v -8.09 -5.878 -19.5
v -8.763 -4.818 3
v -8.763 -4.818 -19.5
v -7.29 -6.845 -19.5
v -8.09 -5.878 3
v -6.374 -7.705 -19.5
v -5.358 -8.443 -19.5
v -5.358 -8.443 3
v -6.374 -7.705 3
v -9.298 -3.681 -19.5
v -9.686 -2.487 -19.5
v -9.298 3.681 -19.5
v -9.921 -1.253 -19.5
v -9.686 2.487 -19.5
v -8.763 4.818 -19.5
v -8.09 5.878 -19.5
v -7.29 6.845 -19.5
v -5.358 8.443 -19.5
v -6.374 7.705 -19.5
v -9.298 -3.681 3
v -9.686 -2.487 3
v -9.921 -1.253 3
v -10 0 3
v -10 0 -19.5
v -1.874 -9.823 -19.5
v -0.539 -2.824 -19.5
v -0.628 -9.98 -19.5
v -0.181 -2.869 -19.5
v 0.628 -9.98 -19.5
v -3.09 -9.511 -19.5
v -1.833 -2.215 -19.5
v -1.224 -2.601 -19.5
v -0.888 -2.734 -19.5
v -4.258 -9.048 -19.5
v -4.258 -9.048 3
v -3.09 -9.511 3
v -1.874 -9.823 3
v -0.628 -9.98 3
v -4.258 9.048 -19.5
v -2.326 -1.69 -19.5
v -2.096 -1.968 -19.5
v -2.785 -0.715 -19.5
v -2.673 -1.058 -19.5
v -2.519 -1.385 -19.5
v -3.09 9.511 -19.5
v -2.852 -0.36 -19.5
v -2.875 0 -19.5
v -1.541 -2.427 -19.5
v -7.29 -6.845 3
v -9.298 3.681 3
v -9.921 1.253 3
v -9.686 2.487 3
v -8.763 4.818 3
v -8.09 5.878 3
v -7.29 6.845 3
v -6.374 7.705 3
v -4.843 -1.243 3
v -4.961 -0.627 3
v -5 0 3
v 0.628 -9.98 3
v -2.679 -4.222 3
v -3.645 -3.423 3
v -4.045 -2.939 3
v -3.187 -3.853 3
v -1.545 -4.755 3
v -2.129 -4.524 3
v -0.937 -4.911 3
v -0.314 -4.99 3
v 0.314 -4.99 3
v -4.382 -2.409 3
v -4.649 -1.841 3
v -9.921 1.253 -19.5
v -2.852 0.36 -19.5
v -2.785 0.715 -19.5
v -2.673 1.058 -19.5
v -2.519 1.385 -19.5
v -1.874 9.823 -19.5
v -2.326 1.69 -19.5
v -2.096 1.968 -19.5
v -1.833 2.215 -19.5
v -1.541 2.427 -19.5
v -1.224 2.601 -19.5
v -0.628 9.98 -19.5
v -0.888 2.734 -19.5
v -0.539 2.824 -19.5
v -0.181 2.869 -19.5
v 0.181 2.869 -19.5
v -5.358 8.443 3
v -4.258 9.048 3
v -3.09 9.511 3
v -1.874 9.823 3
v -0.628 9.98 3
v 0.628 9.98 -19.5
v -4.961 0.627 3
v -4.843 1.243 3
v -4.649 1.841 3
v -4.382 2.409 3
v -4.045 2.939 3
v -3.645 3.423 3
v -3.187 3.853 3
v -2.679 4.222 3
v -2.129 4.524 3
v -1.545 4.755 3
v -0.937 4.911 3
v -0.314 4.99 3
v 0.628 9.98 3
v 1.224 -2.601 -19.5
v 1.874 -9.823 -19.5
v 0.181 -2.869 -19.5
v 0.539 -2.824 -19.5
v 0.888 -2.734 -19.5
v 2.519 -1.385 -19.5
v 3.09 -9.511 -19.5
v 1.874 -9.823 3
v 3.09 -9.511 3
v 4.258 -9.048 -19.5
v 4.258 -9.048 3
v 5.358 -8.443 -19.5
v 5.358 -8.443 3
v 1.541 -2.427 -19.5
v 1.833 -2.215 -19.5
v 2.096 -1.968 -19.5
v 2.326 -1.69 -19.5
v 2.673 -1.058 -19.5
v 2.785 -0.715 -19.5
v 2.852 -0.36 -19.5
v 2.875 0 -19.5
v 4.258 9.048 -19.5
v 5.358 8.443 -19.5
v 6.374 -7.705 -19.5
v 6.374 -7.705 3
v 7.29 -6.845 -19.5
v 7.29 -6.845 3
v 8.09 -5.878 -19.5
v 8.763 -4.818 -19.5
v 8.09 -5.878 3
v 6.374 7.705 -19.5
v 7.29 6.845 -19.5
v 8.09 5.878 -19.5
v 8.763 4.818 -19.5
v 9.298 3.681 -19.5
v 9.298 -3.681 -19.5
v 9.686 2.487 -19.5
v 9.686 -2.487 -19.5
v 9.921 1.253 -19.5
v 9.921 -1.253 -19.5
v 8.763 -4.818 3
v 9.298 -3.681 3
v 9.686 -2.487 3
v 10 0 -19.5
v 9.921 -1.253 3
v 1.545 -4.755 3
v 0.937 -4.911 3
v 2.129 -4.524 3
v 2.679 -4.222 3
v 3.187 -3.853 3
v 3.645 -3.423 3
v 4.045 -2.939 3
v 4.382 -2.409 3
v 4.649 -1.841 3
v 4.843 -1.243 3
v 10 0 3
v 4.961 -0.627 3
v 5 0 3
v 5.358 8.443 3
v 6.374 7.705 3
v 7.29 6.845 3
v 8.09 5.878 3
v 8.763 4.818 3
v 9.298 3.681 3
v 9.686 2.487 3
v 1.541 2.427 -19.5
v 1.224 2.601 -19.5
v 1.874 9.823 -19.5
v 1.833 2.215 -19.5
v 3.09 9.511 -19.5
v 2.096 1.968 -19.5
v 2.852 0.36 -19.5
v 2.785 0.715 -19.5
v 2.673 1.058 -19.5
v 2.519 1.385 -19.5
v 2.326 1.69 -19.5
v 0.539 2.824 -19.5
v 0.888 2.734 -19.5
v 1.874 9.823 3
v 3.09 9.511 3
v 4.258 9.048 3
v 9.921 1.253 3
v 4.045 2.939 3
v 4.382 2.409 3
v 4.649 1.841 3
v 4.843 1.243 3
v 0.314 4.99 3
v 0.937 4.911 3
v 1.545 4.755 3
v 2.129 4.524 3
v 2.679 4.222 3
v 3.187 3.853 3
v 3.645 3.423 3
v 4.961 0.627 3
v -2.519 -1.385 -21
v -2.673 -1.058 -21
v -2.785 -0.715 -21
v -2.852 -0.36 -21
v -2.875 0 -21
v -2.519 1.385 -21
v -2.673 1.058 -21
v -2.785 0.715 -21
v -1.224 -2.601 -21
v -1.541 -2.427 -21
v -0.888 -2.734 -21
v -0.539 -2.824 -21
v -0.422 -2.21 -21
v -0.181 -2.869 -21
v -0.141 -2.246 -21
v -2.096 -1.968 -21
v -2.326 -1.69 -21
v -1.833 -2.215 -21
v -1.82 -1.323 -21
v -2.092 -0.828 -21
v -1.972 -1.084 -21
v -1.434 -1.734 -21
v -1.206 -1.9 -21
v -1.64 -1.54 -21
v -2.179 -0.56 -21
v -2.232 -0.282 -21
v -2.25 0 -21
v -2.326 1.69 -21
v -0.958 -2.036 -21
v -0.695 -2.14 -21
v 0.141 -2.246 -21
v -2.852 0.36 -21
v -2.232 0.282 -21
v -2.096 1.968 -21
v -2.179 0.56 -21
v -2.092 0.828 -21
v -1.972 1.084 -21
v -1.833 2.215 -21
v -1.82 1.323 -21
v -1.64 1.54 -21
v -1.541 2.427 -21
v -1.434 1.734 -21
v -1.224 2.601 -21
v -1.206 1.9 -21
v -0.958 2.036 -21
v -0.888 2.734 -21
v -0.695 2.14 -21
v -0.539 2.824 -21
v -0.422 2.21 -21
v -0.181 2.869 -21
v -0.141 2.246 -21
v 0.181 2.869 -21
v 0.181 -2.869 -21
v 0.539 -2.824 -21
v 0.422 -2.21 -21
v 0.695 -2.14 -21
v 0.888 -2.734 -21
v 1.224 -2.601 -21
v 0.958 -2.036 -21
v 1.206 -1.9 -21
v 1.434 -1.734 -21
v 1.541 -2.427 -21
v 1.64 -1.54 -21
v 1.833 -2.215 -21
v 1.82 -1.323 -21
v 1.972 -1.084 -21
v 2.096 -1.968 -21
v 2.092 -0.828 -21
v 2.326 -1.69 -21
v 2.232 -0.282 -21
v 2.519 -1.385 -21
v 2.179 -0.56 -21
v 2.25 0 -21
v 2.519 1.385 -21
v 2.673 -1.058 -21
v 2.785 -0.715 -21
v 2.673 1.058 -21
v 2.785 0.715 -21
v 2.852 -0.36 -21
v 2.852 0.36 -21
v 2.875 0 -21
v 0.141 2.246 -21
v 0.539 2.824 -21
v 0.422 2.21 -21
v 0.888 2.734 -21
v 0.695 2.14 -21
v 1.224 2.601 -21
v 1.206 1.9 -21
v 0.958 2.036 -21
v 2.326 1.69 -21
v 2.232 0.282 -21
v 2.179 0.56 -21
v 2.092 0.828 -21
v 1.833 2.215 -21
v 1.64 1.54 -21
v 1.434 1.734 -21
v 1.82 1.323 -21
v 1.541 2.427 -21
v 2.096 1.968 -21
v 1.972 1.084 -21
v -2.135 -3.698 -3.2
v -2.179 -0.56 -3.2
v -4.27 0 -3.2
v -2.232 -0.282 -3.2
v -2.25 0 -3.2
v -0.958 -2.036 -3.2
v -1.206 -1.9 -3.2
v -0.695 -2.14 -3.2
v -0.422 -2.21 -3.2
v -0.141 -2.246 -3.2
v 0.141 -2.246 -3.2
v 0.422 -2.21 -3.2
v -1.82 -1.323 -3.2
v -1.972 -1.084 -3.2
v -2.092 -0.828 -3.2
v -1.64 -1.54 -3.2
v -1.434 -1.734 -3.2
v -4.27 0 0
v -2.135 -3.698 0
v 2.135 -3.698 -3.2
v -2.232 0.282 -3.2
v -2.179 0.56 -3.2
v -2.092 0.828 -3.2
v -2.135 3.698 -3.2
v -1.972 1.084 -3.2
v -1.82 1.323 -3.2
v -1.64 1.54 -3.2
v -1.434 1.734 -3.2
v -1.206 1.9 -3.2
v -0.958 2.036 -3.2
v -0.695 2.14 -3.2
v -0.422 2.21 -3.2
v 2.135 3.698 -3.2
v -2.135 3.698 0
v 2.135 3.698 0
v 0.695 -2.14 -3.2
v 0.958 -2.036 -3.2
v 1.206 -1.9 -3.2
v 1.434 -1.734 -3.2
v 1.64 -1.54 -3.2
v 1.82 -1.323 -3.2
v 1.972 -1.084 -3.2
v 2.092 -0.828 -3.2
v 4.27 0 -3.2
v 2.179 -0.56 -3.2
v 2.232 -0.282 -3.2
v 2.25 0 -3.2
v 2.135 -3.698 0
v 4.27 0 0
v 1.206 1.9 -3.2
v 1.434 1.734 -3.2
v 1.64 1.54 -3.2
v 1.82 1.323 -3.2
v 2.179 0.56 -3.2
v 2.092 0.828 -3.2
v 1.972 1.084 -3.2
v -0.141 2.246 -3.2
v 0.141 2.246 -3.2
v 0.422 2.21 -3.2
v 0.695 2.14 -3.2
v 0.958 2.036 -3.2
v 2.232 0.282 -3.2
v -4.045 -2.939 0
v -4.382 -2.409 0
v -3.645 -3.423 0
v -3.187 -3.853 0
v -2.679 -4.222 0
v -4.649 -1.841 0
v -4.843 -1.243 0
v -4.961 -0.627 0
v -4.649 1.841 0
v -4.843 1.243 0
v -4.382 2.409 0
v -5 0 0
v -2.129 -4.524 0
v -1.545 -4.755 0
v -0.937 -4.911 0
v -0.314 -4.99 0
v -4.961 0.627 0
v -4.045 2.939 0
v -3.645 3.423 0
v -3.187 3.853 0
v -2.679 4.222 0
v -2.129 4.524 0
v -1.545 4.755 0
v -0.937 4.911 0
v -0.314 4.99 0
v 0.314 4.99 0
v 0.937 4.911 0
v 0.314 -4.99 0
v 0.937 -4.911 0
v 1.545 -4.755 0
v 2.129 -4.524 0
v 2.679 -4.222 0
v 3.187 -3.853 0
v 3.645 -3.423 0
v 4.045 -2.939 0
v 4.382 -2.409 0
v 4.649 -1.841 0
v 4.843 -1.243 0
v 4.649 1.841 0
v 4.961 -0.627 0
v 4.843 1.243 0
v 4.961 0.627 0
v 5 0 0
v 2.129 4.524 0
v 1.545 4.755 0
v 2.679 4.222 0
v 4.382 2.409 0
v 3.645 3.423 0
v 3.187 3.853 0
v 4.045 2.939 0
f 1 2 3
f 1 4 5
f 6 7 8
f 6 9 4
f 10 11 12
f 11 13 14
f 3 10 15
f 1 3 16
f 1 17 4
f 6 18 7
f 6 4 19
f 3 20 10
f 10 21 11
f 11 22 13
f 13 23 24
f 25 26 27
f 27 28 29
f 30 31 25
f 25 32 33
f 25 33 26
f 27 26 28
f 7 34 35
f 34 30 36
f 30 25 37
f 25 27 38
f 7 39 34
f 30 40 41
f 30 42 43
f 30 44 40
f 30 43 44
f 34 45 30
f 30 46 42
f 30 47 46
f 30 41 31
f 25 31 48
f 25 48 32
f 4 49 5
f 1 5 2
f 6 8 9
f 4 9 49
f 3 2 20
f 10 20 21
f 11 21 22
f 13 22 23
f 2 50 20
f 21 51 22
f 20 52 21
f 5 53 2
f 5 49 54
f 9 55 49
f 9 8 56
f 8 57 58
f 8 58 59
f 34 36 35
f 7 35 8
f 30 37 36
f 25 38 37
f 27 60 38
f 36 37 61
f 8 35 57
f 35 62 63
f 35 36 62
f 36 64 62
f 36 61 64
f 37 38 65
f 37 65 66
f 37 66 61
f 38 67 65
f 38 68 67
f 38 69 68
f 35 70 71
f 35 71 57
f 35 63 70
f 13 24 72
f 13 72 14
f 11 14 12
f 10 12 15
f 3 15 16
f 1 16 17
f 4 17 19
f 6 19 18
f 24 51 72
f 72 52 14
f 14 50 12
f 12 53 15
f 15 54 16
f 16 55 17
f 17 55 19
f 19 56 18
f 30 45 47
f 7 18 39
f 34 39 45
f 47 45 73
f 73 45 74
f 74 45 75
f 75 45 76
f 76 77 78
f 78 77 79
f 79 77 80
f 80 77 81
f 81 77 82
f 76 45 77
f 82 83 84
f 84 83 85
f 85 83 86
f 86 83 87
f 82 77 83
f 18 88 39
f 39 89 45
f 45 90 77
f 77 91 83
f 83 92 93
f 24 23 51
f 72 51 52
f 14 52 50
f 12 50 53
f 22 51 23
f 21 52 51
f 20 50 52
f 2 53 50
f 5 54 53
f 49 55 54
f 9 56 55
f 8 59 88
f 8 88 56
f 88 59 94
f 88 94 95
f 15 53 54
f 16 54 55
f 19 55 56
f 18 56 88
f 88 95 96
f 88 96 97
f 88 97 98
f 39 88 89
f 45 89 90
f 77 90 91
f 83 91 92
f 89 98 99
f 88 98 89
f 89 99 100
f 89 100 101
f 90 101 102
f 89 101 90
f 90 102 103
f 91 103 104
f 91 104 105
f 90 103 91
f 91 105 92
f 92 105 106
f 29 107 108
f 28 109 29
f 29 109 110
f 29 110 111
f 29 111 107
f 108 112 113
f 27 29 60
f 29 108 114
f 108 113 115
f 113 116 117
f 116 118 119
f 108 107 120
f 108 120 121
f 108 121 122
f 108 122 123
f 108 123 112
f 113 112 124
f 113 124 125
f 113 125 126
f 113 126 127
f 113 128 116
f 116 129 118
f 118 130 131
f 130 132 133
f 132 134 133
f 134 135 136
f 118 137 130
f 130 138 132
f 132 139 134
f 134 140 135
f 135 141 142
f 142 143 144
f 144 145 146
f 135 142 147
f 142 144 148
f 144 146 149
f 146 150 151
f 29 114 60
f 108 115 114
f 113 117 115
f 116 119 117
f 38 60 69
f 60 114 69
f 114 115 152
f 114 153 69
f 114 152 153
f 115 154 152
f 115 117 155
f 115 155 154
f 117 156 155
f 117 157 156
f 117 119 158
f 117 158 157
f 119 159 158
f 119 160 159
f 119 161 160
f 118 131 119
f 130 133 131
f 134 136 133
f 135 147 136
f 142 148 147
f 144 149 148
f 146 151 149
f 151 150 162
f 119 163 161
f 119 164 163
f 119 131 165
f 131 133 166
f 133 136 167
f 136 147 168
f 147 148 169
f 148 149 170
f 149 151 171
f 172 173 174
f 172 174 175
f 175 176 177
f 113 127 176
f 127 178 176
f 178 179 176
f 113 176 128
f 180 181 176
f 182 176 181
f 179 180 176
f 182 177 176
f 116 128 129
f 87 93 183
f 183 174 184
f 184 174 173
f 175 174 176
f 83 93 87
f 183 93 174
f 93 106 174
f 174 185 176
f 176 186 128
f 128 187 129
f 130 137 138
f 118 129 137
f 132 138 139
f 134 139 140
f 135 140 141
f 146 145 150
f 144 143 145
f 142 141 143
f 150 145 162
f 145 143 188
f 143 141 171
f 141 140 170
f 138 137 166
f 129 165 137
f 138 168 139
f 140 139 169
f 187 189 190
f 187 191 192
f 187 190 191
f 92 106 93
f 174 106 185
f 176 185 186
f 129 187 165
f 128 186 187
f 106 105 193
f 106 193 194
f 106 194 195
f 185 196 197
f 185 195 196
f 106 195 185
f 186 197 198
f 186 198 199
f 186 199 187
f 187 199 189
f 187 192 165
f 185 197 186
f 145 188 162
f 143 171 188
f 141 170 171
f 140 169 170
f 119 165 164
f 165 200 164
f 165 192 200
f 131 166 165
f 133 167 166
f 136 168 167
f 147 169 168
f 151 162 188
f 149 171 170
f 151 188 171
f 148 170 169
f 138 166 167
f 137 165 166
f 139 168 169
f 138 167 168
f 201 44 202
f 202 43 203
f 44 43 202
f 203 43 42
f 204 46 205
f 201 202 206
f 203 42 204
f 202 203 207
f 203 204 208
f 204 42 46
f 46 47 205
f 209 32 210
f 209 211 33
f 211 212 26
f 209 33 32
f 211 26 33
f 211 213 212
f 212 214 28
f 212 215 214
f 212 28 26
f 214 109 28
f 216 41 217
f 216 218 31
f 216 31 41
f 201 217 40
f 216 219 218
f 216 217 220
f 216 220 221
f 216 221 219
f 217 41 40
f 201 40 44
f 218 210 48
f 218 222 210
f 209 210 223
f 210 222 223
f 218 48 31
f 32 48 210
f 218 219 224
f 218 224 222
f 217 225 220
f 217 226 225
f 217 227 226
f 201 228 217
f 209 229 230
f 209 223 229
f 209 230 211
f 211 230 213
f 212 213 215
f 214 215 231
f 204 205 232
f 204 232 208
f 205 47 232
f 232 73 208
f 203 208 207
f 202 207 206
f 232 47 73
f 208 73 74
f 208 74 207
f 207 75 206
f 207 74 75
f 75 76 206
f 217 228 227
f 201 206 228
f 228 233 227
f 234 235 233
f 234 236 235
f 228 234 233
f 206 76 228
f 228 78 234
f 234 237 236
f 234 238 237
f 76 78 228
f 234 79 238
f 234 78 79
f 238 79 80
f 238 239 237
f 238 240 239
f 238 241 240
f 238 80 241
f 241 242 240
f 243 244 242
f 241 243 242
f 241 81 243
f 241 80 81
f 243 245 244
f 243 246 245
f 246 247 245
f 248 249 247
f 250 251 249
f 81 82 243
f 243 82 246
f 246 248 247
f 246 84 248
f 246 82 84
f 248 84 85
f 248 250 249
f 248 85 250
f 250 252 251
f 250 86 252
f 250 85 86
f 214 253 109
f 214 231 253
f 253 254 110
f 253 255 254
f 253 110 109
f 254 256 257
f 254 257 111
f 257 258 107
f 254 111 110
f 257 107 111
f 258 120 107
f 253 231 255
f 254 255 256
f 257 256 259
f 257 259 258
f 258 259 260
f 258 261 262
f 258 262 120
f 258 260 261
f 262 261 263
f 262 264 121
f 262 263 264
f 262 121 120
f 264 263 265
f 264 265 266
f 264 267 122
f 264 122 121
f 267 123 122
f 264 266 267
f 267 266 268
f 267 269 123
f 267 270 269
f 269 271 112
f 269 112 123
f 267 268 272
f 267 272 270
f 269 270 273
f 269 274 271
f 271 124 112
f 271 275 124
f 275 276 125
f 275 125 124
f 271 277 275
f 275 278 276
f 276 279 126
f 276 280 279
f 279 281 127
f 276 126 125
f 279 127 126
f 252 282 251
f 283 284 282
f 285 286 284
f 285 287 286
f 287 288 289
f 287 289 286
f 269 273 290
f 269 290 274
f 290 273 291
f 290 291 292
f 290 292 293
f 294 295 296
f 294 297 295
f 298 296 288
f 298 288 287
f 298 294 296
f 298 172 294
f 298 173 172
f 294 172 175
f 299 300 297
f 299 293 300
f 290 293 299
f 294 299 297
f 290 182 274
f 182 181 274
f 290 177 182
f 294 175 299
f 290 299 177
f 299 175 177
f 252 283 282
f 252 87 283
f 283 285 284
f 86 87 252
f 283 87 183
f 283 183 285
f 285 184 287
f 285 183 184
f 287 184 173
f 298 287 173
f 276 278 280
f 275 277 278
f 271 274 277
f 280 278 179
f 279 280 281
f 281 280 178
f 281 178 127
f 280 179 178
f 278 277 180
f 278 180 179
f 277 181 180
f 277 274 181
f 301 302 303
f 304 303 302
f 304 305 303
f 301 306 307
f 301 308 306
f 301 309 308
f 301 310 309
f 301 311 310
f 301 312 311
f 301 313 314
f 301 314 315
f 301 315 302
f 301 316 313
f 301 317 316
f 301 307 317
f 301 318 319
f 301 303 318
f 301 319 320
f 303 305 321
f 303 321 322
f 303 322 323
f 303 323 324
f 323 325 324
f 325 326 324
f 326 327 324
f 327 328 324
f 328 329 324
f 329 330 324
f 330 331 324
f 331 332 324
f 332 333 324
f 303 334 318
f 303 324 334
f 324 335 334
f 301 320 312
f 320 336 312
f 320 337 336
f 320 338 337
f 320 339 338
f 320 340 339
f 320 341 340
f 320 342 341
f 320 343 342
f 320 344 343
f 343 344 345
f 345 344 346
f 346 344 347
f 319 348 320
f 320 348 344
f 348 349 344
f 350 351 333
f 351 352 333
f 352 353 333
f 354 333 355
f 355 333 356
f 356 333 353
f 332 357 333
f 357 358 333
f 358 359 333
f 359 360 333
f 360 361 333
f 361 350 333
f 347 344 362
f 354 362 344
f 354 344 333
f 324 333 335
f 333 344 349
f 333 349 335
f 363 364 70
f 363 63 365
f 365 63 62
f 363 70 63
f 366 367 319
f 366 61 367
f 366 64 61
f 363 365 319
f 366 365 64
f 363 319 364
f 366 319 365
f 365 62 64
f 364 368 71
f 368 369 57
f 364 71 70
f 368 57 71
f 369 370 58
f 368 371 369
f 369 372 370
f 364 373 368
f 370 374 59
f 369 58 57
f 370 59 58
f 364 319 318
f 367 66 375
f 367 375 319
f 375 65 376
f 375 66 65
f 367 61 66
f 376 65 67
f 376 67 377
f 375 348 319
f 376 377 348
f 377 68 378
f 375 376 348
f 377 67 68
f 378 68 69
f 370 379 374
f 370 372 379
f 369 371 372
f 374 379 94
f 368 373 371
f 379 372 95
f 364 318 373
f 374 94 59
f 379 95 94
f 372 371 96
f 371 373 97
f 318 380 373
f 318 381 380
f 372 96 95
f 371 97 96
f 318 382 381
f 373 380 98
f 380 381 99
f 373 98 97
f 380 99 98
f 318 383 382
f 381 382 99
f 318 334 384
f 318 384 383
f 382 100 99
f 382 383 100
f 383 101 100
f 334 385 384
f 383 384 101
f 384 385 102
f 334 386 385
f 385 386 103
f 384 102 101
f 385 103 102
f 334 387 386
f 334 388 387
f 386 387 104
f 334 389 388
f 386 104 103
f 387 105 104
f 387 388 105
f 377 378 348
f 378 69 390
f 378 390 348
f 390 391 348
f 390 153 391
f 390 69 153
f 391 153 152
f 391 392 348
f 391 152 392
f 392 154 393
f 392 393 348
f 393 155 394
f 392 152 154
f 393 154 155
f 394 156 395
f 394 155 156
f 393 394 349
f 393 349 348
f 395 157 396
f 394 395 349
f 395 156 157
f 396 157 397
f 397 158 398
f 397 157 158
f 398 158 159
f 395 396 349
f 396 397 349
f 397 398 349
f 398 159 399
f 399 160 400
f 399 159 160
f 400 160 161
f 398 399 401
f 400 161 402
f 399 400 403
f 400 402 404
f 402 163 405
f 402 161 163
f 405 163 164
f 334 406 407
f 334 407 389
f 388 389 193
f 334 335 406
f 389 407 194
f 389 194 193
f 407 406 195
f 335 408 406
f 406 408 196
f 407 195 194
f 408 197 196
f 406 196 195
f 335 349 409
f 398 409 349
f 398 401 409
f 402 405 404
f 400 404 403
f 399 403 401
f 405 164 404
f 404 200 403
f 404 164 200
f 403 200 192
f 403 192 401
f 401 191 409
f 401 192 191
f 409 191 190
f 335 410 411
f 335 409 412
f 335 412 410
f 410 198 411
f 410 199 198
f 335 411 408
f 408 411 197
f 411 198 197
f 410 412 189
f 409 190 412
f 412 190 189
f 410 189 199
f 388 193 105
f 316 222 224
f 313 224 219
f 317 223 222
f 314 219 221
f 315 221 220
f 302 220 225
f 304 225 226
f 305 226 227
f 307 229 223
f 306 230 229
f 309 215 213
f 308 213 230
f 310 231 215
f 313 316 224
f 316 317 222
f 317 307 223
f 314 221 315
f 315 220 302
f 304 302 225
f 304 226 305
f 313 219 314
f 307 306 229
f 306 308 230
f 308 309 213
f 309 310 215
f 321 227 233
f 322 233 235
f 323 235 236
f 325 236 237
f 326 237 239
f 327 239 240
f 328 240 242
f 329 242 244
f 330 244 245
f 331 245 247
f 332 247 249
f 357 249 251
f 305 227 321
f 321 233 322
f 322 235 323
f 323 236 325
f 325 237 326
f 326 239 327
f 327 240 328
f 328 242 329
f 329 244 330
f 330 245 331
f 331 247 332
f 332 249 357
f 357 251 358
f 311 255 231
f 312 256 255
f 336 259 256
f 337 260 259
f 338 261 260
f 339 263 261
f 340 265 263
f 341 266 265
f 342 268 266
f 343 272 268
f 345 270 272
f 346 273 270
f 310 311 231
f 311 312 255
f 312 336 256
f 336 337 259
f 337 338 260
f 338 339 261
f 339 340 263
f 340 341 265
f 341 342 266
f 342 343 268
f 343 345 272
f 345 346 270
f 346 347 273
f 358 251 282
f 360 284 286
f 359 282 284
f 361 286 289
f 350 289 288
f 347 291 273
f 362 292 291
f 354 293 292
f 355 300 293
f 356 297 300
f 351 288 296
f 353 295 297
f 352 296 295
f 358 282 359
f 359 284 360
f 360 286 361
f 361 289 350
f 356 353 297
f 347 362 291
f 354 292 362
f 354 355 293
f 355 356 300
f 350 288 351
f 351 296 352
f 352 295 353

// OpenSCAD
$fn = 50;


difference() {
	union() {
		translate(v = [0, 0, -19.5000000000]) {
			cylinder(h = 22.5000000000, r = 10.0000000000);
		}
		#translate(v = [0, 0, -21.0000000000]) {
			cylinder(h = 21, r = 2.8750000000);
		}
	}
	union() {
		translate(v = [0, 0, 0]) {
			rotate(a = [0, 0, 0]) {
				difference() {
					union() {
						translate(v = [0, 0, -3.2000000000]) {
							linear_extrude(height = 3.2000000000) {
								polygon(points = [[4.2698000000, 0.0000000000], [2.1349000000, 3.6977552691], [-2.1349000000, 3.6977552691], [-4.2698000000, 0.0000000000], [-2.1349000000, -3.6977552691], [2.1349000000, -3.6977552691]]);
							}
						}
					}
					union();
				}
			}
		}
		#cylinder(h = 3, r = 5.0000000000);
		#translate(v = [0, 0, -100.0000000000]) {
			cylinder(h = 200, r = 2.2500000000);
		}
	}
}
